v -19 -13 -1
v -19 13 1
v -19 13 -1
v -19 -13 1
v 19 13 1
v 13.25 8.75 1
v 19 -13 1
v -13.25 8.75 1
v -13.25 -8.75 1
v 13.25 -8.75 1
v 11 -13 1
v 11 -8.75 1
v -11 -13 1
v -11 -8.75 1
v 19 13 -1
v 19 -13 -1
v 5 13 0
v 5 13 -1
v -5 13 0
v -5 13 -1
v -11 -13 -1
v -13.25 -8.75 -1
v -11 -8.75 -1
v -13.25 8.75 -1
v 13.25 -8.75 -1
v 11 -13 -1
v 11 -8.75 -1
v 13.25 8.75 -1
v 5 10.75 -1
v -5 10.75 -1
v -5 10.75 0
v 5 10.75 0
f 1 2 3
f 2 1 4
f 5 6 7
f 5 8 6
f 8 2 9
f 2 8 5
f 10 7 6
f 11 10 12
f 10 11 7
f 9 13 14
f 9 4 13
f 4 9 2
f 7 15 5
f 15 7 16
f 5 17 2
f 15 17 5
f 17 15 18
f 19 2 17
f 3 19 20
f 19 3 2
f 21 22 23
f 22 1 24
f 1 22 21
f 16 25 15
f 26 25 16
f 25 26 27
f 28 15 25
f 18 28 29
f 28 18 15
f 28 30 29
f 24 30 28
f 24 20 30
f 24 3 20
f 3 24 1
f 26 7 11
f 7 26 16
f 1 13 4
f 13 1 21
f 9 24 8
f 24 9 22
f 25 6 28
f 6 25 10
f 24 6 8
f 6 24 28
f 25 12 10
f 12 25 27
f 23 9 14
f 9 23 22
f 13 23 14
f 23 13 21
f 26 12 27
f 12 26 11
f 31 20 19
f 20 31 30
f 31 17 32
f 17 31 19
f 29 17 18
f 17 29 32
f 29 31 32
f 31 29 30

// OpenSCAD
pcb_x=26;
pcb_y=26;
oled_x=26;
oled_y=17;
esp=2;
borde=8;
tol=0.5;

difference(){
cube([pcb_x+borde+2*esp,pcb_y,esp],center=true);
cube([oled_x+tol,oled_y+tol,esp],center=true);
translate([0,-pcb_y/2+(pcb_y-oled_y)/4,0])
cube([oled_x-borde+2*esp,(pcb_y-oled_y)/2,2],center=true);
translate([0,pcb_y/2-(pcb_y-oled_y)/8,-0.5])#cube([borde+esp,(pcb_y-oled_y)/4,1],center=true);
}
